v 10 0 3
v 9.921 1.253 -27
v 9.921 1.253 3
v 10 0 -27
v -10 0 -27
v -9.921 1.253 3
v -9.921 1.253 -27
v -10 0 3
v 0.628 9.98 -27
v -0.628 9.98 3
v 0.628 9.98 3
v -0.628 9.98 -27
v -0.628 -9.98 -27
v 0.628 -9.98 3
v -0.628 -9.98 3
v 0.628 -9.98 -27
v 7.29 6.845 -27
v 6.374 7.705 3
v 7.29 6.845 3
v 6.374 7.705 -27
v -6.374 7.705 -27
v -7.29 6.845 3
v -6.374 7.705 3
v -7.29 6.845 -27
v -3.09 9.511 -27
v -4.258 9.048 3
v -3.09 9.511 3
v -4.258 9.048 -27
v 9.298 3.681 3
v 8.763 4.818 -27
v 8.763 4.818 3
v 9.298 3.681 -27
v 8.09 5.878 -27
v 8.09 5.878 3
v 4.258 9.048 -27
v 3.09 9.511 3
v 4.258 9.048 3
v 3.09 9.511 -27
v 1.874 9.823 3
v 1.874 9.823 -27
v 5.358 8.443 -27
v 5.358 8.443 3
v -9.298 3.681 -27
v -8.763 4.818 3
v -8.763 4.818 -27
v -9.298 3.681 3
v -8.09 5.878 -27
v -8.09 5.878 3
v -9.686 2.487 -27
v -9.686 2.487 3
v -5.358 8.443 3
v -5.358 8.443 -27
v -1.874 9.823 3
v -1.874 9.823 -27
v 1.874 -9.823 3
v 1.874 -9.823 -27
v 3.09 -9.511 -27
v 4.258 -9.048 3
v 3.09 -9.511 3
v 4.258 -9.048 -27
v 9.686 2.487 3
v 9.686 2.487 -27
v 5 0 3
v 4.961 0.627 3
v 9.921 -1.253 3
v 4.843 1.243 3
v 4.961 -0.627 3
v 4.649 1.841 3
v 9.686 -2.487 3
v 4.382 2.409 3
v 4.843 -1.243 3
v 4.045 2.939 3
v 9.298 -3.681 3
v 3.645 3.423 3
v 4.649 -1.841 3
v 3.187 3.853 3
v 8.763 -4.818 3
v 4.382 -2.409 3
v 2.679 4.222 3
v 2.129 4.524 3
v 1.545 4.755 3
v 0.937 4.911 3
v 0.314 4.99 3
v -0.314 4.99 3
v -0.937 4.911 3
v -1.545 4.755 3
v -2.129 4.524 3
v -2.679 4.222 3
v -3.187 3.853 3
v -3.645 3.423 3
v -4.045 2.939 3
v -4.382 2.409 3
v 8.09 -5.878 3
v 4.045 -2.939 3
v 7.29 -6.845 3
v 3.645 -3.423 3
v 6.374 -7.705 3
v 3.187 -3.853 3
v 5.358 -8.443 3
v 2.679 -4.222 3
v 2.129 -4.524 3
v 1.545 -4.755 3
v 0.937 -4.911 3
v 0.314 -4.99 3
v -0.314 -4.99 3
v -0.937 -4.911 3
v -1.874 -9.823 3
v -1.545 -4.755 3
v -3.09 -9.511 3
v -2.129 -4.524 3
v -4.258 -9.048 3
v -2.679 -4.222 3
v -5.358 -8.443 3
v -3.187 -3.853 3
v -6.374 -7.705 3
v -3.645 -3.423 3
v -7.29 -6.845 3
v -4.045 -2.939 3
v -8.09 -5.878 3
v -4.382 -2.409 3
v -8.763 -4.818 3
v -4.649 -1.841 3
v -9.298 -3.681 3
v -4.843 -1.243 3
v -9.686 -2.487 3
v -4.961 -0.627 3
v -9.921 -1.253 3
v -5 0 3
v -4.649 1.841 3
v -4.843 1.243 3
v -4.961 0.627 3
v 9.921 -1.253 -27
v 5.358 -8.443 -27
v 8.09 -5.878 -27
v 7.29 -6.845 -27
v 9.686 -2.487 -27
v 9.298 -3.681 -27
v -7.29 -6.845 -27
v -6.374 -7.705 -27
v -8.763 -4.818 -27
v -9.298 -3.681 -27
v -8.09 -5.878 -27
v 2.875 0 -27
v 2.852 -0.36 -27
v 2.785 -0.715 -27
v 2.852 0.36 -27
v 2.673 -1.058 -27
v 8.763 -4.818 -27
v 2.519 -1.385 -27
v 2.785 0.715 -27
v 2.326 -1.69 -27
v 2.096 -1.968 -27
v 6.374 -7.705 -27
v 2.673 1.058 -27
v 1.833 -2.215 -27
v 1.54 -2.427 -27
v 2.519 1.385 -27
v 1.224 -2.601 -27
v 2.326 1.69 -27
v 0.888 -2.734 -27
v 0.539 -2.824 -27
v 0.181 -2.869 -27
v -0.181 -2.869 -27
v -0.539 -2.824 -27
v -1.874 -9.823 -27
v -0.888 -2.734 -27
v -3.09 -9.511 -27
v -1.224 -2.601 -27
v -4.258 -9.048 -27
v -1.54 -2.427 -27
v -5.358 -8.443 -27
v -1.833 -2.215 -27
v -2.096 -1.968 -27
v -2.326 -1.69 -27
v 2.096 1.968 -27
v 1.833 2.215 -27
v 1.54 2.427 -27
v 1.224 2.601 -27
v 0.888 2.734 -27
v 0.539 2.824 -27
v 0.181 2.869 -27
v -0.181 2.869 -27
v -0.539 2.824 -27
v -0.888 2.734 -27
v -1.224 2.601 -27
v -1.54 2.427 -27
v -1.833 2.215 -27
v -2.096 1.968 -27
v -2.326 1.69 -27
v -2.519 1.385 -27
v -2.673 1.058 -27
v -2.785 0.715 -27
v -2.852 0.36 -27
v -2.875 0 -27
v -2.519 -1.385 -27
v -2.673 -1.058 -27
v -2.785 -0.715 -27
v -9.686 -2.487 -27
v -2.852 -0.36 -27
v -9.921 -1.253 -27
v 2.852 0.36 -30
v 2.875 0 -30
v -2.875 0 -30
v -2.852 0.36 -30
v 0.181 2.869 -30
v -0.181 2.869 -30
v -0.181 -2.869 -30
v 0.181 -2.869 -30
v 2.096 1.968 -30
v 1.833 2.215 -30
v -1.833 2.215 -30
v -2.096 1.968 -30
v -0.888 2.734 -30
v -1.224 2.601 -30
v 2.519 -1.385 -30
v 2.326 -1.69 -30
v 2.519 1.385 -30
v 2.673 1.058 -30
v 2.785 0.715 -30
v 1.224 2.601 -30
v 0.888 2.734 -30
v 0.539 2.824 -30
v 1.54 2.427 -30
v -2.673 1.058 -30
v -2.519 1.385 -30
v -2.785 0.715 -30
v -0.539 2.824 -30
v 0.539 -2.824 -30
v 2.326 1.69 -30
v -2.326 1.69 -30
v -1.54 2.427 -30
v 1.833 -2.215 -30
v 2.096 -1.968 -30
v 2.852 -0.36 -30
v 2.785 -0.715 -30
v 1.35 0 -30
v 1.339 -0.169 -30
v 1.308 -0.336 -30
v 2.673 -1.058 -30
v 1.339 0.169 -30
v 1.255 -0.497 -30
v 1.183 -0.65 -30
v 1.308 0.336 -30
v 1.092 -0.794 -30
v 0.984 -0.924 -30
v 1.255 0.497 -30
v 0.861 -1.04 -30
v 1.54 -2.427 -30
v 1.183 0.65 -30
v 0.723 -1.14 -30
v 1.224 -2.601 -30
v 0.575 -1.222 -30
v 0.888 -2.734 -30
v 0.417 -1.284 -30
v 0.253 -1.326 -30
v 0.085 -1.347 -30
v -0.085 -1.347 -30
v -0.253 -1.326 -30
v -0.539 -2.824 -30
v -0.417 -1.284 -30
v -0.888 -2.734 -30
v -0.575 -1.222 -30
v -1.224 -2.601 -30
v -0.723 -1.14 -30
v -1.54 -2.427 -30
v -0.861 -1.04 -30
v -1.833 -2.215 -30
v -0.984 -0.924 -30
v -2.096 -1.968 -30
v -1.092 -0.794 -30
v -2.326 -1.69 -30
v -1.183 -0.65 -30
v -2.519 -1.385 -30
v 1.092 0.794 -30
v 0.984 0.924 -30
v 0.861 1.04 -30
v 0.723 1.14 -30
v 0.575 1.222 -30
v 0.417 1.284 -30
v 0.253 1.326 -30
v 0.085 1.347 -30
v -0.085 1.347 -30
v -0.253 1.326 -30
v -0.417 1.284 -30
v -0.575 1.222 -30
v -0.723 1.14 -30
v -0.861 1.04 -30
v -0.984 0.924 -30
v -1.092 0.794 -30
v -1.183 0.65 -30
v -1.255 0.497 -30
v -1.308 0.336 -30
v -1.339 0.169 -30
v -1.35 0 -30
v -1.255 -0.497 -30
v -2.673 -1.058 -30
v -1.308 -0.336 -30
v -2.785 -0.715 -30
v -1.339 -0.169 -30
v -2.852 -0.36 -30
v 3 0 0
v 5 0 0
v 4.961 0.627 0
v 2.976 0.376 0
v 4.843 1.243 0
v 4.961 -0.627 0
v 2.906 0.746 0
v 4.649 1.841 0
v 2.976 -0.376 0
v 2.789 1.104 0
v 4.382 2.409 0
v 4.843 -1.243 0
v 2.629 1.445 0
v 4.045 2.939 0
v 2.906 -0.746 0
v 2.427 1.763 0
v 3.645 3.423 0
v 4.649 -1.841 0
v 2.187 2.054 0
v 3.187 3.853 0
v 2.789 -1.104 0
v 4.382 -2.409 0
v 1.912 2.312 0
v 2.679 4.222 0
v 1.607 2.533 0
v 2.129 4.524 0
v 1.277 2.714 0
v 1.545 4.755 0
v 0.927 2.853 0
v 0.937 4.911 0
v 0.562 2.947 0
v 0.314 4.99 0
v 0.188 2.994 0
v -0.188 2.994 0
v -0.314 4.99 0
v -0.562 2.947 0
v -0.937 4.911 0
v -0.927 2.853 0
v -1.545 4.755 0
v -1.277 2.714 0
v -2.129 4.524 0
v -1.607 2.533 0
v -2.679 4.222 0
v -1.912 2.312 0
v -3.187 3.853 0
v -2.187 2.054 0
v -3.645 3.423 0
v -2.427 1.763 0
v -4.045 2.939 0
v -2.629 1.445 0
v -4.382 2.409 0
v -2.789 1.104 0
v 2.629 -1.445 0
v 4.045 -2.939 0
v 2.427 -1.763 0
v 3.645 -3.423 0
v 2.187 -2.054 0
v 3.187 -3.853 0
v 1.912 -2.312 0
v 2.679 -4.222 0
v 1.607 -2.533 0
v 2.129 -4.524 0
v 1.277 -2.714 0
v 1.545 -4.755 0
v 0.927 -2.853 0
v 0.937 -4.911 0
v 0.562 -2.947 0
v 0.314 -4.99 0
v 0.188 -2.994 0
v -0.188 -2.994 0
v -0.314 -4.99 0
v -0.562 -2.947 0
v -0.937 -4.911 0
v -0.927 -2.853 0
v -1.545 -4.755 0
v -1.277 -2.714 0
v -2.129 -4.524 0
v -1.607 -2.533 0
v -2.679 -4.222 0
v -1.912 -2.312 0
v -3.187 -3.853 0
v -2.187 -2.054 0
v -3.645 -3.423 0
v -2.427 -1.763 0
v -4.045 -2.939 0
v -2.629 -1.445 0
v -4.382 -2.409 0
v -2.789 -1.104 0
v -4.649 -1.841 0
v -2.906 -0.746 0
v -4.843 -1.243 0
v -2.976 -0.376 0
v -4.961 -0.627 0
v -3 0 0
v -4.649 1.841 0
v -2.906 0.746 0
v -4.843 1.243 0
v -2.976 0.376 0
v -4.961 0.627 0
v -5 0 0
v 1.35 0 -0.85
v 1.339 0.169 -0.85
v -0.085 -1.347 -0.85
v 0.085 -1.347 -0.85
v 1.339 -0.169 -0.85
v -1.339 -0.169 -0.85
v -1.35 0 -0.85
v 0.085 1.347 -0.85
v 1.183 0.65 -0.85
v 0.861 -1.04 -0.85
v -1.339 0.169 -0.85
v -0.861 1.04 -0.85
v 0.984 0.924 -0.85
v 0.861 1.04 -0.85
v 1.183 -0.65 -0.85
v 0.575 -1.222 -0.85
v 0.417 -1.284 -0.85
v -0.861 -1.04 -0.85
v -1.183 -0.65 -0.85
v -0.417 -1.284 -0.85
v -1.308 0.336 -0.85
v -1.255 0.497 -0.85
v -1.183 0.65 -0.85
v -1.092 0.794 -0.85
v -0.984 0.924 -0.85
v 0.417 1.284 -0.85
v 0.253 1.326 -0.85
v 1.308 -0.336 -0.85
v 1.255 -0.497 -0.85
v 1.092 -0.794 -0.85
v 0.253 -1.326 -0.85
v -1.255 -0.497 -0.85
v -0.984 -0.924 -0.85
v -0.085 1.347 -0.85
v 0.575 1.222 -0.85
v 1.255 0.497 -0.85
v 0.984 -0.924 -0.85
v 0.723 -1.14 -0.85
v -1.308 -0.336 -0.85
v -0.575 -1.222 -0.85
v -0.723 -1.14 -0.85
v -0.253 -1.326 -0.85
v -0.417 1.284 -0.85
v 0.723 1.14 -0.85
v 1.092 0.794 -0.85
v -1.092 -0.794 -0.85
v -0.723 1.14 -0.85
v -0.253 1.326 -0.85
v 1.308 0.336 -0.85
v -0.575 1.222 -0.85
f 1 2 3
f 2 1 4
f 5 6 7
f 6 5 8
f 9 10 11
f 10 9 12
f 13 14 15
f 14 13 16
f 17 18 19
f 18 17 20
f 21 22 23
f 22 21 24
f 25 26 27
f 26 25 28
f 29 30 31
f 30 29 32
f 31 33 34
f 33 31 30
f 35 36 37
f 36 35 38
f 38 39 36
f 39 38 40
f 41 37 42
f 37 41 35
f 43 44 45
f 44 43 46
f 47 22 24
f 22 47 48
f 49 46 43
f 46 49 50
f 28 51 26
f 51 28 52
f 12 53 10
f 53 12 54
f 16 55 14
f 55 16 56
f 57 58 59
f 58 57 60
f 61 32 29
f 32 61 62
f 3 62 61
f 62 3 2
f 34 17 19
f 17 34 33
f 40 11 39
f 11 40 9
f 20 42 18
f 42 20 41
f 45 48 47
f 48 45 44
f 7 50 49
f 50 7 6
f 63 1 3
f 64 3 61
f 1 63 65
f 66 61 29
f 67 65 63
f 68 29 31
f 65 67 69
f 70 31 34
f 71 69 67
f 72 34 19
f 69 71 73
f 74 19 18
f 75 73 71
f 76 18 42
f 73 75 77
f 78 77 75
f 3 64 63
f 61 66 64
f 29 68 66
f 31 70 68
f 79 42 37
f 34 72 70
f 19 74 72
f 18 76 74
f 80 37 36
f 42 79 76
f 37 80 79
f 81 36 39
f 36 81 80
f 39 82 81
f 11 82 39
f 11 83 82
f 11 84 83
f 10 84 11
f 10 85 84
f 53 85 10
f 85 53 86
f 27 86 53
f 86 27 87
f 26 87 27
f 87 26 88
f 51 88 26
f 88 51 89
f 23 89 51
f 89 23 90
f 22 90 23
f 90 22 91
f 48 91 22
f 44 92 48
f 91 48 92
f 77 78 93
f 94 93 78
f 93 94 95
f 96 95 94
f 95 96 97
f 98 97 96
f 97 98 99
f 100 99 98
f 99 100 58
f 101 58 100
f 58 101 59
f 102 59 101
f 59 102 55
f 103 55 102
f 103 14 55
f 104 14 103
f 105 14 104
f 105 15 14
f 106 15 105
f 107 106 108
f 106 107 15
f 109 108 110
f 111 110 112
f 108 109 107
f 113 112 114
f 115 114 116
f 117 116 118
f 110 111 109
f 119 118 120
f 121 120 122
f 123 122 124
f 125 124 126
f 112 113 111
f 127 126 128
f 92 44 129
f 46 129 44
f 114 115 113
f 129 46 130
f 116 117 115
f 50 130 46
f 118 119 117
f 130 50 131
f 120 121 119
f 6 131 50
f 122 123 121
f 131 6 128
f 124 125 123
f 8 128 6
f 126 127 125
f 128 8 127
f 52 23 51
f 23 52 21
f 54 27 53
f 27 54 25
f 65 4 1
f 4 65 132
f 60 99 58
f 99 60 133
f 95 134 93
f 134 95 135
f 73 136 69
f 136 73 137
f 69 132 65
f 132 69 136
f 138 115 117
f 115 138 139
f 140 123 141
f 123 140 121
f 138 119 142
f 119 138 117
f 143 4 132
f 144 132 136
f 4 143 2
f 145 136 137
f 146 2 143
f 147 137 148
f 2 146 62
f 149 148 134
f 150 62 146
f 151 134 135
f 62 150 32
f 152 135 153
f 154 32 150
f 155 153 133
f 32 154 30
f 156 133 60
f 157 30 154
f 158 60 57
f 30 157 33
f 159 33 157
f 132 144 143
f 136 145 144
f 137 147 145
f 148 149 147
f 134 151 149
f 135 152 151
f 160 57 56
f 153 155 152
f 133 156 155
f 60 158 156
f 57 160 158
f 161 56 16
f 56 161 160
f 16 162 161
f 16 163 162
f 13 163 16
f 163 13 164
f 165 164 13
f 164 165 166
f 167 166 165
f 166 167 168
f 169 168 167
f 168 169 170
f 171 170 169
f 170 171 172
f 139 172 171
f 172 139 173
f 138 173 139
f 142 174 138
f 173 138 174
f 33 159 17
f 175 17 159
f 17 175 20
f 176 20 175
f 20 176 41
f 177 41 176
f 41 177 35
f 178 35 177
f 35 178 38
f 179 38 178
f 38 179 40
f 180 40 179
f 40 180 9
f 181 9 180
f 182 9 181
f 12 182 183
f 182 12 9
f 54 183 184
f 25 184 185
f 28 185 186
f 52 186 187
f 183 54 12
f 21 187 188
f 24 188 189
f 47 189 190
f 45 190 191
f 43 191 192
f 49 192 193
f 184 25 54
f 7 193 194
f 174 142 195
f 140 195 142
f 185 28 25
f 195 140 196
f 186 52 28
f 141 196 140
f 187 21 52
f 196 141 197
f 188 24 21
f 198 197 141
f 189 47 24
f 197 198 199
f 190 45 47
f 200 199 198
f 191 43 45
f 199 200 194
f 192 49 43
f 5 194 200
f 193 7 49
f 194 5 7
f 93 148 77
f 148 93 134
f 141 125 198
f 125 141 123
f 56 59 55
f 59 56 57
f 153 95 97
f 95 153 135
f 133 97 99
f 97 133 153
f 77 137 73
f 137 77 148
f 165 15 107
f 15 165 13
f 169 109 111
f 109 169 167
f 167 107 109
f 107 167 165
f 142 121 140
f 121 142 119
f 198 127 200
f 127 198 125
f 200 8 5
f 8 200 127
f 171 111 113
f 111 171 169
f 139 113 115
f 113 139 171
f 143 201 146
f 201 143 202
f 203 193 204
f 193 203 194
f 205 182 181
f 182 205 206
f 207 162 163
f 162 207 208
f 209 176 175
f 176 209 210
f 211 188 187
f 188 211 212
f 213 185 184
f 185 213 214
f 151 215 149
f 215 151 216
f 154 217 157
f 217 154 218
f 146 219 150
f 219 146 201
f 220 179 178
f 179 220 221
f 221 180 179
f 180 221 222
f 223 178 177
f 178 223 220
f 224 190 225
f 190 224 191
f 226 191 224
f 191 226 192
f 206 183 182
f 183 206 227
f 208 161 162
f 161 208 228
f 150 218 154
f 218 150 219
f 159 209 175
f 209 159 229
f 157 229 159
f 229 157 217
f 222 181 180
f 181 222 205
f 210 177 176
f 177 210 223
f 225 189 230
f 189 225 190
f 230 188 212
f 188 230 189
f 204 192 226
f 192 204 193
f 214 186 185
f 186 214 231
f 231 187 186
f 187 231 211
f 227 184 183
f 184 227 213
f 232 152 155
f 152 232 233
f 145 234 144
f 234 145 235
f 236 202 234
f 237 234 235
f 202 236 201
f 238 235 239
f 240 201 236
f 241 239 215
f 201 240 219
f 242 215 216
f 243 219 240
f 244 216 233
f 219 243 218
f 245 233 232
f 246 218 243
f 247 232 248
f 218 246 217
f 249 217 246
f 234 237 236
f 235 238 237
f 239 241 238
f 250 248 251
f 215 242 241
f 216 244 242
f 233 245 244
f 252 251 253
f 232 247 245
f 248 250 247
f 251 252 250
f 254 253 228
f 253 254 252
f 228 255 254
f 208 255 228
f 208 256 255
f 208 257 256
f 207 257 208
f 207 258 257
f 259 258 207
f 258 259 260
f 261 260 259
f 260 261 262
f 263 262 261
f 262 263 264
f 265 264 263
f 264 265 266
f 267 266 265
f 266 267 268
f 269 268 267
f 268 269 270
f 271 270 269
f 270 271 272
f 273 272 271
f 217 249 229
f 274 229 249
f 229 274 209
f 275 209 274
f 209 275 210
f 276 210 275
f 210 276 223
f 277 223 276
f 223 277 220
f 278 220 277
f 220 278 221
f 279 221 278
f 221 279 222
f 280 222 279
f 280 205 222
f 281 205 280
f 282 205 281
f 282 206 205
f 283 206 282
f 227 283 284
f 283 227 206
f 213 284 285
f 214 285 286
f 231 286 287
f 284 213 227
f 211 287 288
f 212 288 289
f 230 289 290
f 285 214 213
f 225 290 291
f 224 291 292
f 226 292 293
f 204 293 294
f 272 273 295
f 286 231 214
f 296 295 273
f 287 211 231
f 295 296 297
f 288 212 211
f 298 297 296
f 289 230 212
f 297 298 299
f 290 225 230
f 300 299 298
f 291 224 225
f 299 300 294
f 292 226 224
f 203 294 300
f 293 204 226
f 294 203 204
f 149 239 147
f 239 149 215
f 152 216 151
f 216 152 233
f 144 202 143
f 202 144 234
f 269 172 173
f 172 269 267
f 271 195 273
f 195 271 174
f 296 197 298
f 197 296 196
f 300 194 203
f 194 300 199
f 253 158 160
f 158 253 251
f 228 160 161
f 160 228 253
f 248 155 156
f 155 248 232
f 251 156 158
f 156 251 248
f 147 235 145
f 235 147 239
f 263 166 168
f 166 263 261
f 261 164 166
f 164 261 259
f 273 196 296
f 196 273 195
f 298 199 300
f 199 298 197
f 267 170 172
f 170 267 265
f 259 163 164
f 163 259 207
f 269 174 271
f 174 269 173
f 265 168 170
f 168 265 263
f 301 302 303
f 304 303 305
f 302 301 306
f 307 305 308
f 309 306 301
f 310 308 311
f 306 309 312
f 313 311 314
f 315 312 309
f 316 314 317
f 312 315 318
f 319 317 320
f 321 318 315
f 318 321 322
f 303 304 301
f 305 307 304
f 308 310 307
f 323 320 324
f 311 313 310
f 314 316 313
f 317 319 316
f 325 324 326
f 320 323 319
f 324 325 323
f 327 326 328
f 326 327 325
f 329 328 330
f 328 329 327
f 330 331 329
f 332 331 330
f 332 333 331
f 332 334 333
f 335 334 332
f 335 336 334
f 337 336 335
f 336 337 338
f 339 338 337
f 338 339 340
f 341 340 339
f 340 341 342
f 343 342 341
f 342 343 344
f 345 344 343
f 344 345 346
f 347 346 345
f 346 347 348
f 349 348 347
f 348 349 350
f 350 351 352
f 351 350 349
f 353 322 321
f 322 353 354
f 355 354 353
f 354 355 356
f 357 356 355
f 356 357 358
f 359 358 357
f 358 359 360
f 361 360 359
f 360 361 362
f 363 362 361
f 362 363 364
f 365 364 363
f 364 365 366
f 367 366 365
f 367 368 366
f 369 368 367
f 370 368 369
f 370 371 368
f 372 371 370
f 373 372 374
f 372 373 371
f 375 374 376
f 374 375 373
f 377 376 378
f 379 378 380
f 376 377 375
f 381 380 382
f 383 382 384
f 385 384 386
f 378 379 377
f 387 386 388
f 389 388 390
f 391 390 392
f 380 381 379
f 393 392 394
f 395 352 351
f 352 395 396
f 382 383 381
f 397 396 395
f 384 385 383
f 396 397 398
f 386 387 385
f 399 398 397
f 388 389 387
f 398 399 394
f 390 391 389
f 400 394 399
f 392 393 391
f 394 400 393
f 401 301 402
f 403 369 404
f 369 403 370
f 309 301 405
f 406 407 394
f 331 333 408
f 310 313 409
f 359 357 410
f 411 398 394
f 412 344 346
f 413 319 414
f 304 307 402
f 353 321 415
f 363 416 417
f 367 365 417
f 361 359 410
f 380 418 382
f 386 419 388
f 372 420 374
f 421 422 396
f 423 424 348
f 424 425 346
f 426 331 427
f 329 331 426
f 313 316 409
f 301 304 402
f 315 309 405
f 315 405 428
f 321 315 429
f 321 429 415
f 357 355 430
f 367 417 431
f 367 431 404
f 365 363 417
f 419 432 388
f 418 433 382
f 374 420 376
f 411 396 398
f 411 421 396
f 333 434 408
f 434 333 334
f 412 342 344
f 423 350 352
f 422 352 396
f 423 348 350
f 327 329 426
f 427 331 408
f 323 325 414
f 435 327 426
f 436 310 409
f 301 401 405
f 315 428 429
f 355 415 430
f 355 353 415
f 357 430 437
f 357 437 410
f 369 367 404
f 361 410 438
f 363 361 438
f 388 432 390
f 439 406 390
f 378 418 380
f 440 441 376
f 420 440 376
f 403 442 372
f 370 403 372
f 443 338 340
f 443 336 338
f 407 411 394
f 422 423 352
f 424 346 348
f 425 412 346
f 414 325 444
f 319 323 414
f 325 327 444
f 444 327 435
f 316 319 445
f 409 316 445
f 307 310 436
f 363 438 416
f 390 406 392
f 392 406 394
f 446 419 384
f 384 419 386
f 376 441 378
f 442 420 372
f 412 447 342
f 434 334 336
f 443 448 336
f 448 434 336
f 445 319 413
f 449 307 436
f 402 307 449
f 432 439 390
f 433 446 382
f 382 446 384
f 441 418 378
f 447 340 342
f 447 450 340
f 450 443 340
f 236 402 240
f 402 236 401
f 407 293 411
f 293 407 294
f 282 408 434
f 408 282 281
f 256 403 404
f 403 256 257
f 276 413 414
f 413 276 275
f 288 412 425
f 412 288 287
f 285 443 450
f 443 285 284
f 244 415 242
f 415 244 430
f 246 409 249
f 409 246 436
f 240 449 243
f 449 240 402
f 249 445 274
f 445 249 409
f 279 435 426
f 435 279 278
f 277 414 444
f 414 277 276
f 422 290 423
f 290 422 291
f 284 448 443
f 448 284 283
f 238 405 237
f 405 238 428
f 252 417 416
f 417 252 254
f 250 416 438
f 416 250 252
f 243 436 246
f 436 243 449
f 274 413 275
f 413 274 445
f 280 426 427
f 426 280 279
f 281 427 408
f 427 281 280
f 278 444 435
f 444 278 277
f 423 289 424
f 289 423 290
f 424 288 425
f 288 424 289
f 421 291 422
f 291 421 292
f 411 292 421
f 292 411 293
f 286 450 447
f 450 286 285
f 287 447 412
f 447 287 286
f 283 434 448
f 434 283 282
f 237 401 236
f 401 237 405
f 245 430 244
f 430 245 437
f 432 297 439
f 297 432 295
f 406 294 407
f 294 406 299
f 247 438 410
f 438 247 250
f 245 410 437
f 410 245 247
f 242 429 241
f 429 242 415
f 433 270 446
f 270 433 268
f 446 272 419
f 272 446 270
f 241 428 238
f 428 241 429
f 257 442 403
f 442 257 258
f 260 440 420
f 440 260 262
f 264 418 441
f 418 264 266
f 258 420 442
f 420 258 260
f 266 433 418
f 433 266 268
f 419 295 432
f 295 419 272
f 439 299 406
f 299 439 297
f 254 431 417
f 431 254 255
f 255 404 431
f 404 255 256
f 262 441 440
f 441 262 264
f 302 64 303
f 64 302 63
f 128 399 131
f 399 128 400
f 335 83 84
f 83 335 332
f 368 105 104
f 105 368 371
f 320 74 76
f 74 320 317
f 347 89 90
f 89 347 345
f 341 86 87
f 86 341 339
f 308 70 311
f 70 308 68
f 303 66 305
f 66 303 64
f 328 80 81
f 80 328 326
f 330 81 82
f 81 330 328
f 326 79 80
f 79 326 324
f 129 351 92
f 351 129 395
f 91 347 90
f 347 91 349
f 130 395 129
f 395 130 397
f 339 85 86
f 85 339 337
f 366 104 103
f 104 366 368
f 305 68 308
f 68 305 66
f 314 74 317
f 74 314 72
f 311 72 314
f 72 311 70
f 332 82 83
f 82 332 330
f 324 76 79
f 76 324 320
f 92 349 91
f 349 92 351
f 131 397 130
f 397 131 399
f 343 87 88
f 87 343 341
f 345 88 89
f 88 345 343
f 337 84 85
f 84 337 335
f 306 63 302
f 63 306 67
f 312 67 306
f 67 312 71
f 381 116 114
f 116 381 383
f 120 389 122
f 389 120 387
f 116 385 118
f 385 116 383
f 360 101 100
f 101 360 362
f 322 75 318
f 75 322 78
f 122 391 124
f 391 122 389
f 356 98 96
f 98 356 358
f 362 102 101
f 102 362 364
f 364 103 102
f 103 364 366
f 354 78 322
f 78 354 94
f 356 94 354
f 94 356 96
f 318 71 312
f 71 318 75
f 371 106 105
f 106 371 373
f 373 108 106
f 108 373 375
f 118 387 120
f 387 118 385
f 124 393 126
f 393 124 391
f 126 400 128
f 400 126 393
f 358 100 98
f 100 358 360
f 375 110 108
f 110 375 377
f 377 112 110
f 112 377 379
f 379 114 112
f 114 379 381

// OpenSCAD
$fn = 50;

difference() {
	union() {
		translate(v = [0, 0, -27.0]) {
			cylinder(h = 30, r = 10.0);
		}
		#translate(v = [0, 0, -30.0]) {
			cylinder(h = 30, r = 2.875);
		}
	}
	union() {
		translate(v = [0, 0, 0]) {
			rotate(a = [0, 0, 0]) {
				difference() {
					union() {
						translate(v = [0, 0, -30.0]) {
							cylinder(h = 30, r = 1.0);
						}
						translate(v = [0, 0, -0.85]) {
							cylinder(h = 0.85, r1 = 1.35, r2 = 3.0);
						}
						translate(v = [0, 0, -30.0]) {
							cylinder(h = 30, r = 1.35);
						}
						translate(v = [0, 0, -30.0]) {
							cylinder(h = 30, r = 1.0);
						}
					}
					union();
				}
			}
		}
		#cylinder(h = 3, r = 5.0);
	}
}
